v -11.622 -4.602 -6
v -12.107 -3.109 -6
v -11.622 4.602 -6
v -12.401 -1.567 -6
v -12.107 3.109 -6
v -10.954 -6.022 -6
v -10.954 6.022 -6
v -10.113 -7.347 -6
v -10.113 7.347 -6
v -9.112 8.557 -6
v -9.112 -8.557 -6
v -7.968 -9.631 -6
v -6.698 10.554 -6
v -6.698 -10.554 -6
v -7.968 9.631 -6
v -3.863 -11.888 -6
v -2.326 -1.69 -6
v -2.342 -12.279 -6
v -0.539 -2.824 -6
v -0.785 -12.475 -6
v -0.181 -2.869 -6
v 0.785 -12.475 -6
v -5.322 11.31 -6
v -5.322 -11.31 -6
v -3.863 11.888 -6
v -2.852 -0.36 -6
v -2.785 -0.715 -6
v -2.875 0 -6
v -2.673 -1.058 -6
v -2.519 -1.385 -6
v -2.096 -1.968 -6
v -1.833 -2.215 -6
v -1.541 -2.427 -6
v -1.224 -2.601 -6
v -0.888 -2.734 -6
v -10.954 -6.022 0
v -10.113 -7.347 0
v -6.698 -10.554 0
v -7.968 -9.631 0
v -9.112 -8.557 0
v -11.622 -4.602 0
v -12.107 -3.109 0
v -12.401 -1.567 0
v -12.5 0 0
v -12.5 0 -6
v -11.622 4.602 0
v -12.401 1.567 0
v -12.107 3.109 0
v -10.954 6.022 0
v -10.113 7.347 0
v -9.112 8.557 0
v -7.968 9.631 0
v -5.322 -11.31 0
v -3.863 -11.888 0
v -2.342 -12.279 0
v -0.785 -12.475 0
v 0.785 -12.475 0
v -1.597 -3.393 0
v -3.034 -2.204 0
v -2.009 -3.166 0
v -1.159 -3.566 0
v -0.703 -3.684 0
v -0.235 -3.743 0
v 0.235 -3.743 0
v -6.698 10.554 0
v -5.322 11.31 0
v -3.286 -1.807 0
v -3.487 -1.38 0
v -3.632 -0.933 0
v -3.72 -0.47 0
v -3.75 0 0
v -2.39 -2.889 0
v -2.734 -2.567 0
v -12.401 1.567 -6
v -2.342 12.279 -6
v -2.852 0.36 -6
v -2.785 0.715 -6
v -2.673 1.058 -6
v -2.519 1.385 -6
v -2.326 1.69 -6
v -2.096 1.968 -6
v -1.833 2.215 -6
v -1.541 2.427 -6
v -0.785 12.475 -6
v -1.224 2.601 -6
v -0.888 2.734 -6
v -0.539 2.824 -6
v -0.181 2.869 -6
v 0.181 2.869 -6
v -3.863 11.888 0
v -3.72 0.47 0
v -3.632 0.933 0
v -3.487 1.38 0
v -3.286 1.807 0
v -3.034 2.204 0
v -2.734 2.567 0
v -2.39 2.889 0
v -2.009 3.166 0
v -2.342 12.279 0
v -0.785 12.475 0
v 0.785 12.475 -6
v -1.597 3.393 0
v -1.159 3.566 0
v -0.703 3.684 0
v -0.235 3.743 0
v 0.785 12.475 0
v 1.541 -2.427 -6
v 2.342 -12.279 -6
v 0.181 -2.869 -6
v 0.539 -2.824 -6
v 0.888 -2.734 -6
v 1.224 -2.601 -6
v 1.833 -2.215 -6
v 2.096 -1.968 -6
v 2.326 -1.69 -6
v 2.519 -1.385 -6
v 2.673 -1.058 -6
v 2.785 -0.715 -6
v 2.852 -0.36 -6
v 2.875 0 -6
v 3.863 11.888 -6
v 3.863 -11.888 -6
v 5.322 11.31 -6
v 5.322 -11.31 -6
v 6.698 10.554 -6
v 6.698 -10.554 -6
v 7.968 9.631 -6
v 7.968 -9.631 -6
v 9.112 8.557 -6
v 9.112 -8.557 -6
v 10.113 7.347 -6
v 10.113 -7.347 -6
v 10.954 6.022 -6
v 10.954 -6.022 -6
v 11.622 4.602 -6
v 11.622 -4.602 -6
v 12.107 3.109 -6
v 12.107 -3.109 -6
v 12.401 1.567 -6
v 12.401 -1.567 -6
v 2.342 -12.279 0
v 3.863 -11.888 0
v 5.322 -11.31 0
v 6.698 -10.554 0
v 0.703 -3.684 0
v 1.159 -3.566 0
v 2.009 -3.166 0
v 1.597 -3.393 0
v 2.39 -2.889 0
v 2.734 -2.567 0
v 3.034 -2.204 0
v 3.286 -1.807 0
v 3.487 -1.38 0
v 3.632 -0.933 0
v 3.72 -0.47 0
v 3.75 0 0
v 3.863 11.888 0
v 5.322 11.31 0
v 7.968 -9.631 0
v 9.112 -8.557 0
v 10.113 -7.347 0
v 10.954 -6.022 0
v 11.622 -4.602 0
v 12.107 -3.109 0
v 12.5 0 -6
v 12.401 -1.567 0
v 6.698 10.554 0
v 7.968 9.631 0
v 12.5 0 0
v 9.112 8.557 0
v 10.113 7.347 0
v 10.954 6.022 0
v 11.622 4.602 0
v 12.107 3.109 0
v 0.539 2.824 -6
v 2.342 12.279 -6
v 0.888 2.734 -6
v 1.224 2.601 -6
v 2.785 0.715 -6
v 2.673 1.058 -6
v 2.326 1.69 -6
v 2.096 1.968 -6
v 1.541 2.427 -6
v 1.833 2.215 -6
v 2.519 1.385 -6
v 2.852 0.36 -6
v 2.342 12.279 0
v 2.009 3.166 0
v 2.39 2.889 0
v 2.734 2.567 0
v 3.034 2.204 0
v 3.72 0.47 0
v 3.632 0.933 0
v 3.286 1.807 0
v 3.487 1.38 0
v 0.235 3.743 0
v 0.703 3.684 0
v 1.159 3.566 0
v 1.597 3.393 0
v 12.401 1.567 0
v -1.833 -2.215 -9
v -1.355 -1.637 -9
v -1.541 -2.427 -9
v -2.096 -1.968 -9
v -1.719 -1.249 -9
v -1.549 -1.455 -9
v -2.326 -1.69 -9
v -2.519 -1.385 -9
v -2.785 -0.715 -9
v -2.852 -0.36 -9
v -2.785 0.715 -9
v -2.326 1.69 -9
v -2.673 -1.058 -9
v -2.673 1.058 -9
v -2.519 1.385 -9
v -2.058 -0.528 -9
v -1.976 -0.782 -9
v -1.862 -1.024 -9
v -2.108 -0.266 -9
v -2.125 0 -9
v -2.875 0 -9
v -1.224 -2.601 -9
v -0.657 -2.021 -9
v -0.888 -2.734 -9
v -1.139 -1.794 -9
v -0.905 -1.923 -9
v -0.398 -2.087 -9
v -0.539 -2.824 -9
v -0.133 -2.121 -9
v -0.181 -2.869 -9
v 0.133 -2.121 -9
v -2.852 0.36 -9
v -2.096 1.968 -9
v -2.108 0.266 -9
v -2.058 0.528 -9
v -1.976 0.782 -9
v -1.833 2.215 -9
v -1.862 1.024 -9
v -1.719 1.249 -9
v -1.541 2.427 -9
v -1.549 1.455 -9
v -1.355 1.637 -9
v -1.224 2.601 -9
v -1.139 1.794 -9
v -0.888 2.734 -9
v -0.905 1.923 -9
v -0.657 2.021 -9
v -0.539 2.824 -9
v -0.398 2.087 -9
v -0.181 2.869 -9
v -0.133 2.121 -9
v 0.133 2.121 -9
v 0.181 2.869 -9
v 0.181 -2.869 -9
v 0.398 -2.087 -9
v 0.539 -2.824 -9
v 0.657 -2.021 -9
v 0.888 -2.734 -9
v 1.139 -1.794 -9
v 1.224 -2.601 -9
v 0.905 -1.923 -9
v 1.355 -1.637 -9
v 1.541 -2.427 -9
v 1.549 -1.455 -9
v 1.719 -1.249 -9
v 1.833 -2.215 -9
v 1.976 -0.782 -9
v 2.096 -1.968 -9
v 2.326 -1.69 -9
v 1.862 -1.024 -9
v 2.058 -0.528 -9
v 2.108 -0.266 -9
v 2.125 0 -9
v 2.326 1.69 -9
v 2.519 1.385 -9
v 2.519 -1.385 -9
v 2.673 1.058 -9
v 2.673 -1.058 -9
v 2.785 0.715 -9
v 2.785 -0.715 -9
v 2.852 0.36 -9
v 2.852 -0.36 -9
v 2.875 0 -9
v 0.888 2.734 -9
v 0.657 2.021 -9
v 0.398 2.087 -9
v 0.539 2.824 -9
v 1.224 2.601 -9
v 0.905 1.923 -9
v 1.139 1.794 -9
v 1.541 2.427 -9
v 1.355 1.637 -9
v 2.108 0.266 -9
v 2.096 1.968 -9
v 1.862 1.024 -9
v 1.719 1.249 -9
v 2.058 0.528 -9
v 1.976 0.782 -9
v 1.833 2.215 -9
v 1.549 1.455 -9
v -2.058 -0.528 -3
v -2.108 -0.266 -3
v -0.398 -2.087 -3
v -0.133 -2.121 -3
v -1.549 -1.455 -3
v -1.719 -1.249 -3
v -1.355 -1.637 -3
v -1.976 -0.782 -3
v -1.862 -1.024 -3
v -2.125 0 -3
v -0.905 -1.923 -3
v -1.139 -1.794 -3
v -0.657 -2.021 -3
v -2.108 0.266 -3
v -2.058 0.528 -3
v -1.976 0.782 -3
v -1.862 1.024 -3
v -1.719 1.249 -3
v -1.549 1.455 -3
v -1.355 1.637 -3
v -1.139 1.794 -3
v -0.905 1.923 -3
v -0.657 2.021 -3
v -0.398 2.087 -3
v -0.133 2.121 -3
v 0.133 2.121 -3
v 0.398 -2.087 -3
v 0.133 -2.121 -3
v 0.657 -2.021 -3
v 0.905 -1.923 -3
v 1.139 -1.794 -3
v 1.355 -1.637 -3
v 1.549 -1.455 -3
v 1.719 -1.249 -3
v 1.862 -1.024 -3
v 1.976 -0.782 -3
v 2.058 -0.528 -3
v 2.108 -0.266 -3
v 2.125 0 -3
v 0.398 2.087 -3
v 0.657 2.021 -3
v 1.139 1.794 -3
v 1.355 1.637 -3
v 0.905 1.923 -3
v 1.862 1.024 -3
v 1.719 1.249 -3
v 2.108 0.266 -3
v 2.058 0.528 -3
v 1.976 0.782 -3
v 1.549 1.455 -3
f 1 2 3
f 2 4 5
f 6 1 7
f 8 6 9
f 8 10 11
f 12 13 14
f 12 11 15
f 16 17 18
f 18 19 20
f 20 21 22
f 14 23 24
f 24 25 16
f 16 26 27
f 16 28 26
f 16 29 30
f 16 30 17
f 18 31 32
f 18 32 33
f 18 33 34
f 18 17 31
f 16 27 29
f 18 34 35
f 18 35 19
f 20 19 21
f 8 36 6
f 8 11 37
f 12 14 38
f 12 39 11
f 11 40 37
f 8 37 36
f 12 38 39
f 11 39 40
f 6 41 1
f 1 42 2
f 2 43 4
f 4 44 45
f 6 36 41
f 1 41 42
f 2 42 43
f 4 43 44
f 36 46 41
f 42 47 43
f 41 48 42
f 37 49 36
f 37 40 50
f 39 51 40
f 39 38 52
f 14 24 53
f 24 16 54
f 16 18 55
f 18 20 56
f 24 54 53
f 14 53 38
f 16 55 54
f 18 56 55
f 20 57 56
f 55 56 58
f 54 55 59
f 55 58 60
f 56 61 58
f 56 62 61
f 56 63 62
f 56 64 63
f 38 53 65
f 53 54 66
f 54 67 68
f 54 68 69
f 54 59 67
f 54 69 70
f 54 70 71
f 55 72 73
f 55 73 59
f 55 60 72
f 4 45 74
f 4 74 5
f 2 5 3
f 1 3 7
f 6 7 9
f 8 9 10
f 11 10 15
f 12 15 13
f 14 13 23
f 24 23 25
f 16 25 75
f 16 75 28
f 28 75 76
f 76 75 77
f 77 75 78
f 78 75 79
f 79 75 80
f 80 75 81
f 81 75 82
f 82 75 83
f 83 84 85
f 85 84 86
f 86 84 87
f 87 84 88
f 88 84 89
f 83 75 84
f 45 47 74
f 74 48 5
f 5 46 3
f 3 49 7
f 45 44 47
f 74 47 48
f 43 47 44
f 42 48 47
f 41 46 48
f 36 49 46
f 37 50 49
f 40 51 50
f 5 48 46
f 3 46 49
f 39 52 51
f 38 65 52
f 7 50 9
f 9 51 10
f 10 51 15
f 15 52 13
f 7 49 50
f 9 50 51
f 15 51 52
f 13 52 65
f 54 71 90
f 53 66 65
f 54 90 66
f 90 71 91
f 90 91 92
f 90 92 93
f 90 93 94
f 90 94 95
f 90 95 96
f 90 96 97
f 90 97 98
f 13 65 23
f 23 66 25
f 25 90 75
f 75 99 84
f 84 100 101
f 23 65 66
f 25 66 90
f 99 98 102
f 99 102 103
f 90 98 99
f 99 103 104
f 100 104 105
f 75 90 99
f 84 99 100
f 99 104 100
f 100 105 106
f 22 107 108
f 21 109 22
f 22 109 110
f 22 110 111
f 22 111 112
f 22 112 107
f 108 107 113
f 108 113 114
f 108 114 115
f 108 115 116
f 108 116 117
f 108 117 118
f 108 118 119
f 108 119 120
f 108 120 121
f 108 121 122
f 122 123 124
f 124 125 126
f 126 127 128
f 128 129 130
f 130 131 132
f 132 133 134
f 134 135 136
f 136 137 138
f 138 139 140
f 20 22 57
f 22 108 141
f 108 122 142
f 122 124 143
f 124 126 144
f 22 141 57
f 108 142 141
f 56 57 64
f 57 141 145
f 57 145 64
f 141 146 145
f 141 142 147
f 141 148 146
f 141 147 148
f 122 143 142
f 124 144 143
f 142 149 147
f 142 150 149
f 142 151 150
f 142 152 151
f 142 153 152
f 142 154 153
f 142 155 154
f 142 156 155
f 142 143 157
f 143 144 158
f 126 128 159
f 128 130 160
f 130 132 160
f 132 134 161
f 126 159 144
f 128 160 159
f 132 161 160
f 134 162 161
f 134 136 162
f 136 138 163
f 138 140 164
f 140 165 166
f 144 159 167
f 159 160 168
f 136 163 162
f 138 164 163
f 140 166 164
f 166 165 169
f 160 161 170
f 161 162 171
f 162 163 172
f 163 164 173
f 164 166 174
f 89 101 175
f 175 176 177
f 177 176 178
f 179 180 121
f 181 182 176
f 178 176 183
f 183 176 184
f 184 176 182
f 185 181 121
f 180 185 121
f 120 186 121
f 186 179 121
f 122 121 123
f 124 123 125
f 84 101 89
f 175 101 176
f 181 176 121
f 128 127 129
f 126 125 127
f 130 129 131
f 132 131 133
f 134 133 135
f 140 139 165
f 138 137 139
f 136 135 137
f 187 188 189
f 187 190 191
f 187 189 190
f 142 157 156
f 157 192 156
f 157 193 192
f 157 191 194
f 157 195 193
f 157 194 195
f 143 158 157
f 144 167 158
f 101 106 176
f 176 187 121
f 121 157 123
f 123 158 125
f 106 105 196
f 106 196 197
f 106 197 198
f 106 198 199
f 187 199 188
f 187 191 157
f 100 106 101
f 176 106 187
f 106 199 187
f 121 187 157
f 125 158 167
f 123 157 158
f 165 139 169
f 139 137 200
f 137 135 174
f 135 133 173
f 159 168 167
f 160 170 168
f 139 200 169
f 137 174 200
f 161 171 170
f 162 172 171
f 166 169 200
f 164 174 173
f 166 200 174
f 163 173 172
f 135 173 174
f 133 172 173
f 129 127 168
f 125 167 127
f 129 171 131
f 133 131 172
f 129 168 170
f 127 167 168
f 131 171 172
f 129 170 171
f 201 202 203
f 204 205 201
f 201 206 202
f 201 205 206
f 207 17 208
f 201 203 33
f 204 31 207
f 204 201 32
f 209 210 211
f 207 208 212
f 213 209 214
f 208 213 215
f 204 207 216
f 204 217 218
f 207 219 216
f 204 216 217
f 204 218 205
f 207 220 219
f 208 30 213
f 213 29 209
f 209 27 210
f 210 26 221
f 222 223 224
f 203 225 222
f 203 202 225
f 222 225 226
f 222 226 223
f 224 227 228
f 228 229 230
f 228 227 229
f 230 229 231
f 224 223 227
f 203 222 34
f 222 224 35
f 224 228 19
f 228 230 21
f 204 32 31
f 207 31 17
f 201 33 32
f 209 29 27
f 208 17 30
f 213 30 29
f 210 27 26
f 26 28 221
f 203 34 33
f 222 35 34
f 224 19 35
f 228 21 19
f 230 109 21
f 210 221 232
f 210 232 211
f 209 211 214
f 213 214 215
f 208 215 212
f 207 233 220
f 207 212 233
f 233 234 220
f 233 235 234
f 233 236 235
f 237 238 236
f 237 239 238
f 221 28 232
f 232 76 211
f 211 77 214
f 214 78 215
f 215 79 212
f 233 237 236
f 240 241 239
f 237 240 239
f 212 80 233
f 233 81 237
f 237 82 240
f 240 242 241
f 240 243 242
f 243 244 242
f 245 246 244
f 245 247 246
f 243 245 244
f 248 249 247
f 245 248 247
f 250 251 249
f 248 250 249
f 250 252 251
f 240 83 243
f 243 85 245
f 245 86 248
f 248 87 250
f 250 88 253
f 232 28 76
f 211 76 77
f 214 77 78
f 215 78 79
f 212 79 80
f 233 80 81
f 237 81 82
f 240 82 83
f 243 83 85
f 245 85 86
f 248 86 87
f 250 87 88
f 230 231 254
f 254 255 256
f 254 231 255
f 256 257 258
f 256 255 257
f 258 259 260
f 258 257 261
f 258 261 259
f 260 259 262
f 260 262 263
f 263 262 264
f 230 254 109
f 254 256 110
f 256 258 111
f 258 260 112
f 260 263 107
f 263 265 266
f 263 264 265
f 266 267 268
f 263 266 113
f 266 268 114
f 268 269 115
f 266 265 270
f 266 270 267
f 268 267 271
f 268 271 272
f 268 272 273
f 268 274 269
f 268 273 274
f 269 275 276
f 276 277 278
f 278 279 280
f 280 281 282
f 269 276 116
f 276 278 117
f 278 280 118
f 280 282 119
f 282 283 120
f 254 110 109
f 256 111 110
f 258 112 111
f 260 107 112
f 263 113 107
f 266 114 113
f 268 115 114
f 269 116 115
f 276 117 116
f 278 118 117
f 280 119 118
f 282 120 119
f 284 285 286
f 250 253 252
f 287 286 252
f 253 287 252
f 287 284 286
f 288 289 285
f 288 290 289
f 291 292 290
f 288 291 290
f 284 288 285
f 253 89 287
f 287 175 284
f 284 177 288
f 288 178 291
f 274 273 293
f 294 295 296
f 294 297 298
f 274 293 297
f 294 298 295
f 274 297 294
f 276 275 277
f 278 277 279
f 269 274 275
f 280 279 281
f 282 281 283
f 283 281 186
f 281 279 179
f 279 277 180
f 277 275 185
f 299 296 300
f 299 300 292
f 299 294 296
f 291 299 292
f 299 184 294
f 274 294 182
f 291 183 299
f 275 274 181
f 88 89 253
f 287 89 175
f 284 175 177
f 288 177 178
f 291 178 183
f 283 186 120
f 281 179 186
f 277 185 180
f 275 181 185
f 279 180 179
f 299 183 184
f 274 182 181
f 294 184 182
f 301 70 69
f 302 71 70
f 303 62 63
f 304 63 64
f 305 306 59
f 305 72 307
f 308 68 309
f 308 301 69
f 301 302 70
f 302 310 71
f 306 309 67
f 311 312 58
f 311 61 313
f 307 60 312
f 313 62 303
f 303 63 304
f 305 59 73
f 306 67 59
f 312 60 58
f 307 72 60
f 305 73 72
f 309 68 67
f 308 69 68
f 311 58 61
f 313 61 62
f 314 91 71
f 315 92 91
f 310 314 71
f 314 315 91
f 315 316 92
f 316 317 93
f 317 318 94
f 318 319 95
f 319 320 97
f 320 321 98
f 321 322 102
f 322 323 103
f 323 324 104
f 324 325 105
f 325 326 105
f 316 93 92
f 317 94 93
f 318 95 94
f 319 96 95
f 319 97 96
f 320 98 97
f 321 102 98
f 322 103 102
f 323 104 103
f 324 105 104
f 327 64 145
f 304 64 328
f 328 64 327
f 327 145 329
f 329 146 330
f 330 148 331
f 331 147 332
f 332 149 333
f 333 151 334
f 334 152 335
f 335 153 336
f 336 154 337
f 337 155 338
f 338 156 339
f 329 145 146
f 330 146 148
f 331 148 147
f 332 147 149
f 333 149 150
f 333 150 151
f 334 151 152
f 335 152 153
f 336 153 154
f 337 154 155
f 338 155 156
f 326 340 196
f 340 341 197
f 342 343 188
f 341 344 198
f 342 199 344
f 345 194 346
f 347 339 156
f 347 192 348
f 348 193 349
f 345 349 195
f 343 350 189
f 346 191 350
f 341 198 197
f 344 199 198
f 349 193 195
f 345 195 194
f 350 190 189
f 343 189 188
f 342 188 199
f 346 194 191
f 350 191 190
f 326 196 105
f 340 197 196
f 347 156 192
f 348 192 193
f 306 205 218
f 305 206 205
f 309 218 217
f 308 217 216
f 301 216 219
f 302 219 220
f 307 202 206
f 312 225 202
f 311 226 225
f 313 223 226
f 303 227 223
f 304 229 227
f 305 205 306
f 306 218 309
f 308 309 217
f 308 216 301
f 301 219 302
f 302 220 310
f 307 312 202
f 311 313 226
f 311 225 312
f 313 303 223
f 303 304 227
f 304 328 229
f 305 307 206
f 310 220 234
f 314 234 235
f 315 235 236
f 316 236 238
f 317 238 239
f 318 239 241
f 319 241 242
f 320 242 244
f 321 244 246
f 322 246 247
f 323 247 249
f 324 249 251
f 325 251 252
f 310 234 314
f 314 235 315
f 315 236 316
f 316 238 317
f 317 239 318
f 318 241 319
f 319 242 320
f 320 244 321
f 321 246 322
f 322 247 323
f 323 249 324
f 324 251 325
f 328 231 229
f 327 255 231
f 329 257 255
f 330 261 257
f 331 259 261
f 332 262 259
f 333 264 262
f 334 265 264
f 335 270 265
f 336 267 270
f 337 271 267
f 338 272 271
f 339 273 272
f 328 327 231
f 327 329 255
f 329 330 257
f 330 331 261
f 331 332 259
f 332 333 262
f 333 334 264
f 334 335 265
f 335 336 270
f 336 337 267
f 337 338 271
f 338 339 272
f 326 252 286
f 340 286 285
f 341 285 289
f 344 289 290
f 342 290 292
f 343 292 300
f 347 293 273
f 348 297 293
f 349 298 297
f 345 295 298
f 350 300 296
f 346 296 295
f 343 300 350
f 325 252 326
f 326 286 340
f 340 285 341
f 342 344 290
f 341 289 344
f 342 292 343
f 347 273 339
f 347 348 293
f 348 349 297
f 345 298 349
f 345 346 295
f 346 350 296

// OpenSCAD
$fn = 50;

difference() {
	union() {
		translate(v = [0, 0, -6.0]) {
			cylinder(h = 6, r = 12.5);
		}
		#translate(v = [0, 0, -9.0]) {
			cylinder(h = 9, r = 2.875);
		}
	}
	union() {
		translate(v = [0, 0, 0]) {
			rotate(a = [0, 0, 0]) {
				difference() {
					union() {
						translate(v = [0, 0, -9.0]) {
							cylinder(h = 9, r = 2.0);
						}
						translate(v = [0, 0, -3]) {
							cylinder(h = 3, r1 = 2.125, r2 = 3.75);
						}
						translate(v = [0, 0, -9.0]) {
							cylinder(h = 9, r = 2.125);
						}
						translate(v = [0, 0, -9.0]) {
							cylinder(h = 9, r = 2.0);
						}
					}
					union();
				}
			}
		}
	}
}
